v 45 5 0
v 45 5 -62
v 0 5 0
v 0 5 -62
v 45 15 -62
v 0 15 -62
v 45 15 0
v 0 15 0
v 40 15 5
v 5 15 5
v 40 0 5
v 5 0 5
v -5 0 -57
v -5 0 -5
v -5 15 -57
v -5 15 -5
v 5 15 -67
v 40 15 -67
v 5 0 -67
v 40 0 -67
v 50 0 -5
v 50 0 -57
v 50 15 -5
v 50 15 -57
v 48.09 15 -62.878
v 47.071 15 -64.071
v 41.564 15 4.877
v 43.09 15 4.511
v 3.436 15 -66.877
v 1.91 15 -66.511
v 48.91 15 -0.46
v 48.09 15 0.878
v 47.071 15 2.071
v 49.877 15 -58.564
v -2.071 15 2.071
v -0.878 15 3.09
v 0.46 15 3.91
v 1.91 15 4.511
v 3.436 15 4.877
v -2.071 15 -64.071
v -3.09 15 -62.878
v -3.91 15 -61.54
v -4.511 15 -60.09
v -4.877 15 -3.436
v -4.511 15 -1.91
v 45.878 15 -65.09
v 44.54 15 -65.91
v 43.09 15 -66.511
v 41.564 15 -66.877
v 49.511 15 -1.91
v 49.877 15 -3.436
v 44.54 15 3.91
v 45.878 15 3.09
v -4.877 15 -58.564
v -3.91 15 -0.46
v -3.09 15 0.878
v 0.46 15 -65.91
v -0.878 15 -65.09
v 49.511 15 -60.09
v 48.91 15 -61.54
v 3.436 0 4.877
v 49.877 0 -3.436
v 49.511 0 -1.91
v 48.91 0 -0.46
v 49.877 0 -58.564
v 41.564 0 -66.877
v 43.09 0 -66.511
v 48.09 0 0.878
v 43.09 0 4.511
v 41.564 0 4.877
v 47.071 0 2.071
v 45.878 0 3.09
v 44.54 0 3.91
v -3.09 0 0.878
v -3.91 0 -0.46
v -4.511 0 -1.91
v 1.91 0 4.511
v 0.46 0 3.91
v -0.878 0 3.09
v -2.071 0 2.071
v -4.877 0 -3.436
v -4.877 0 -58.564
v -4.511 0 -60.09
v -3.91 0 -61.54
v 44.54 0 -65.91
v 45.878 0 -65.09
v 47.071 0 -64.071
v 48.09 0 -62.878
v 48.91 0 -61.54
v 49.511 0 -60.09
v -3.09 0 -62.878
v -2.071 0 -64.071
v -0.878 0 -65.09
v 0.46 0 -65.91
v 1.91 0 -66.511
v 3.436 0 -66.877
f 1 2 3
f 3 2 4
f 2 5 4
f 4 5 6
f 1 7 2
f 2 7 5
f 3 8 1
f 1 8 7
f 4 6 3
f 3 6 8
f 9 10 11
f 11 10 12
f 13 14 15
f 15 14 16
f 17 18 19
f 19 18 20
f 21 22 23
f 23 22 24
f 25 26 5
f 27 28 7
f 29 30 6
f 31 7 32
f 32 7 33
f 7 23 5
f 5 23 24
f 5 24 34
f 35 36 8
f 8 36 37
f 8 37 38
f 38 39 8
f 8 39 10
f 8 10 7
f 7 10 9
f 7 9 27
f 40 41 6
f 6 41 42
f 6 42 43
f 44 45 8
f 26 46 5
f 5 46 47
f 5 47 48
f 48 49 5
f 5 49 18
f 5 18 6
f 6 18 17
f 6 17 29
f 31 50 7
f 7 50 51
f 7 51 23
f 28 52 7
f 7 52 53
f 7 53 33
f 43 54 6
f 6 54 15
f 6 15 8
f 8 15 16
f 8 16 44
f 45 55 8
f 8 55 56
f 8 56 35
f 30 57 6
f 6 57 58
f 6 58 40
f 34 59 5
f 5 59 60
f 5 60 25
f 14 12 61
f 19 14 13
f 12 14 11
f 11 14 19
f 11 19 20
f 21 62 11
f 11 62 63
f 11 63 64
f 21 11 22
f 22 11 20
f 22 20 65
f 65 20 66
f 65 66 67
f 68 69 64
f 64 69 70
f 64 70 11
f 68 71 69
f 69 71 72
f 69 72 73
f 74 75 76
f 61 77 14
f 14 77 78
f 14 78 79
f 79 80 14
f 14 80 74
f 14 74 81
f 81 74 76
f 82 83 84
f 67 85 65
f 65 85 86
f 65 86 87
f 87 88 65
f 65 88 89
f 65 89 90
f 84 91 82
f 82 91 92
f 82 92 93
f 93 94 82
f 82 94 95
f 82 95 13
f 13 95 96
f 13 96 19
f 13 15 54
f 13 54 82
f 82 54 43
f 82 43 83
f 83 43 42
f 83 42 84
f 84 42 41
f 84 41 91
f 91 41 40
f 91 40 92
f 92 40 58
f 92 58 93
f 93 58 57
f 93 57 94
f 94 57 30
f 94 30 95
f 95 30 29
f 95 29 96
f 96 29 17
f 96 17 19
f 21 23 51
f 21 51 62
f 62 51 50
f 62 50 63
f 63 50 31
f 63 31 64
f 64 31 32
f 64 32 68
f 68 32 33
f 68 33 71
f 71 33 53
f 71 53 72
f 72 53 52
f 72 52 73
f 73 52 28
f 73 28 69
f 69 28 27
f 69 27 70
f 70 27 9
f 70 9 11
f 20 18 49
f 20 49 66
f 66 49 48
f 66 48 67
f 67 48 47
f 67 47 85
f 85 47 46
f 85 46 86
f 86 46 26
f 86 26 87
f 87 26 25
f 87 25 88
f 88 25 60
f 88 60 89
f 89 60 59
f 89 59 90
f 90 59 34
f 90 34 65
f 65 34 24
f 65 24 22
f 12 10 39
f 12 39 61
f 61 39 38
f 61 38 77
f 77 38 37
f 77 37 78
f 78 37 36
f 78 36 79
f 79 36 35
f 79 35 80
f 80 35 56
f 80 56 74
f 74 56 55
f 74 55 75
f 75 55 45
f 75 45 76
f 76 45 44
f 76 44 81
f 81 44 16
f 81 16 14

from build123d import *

# Parameters (mm, degrees)
SKETCH2_W                = 45
SKETCH2_H                = 62
BOSS_EXTRUDE1_DEPTH      = 5
BOSS_EXTRUDE2_DEPTH      = 10
BOSS_EXTRUDE2_DEPTH_BACK = 5
SKETCH3_W                = 55
SKETCH3_H                = 72
SKETCH3_W_2              = 45
SKETCH3_H_2              = 62
FILLET1_R                = 10


with BuildPart() as part:
    # Sketch2 → Boss-Extrude1 (new body)
    with BuildSketch(Plane(origin=(0, 0, 0), x_dir=(1, 0, 0), z_dir=(0, 1, 0))):
        with Locations((22.5, 31)):
            Rectangle(SKETCH2_W, SKETCH2_H)
    extrude(amount=BOSS_EXTRUDE1_DEPTH)

    # Sketch3 → Boss-Extrude2 (add, two sides: drawn at the far end of the back side and taken through both)
    with BuildSketch(Plane(origin=(0, 5, 0), x_dir=(1, 0, 0), z_dir=(0, 1, 0)).offset(-BOSS_EXTRUDE2_DEPTH_BACK)):
        with Locations((22.5, 31)):
            Rectangle(SKETCH3_W, SKETCH3_H)
        with Locations((22.5, 31)):
            Rectangle(SKETCH3_W_2, SKETCH3_H_2, mode=Mode.SUBTRACT)
    extrude(amount=BOSS_EXTRUDE2_DEPTH + BOSS_EXTRUDE2_DEPTH_BACK)

    # Fillet1
    fillet1_edges = [part.edges().sort_by_distance(p)[0] for p in [
        (50, 7.5, 5),
        (-5, 7.5, 5),
        (-5, 7.5, -67),
        (50, 7.5, -67),
    ]]
    fillet(fillet1_edges, radius=FILLET1_R)


solid = part.part
